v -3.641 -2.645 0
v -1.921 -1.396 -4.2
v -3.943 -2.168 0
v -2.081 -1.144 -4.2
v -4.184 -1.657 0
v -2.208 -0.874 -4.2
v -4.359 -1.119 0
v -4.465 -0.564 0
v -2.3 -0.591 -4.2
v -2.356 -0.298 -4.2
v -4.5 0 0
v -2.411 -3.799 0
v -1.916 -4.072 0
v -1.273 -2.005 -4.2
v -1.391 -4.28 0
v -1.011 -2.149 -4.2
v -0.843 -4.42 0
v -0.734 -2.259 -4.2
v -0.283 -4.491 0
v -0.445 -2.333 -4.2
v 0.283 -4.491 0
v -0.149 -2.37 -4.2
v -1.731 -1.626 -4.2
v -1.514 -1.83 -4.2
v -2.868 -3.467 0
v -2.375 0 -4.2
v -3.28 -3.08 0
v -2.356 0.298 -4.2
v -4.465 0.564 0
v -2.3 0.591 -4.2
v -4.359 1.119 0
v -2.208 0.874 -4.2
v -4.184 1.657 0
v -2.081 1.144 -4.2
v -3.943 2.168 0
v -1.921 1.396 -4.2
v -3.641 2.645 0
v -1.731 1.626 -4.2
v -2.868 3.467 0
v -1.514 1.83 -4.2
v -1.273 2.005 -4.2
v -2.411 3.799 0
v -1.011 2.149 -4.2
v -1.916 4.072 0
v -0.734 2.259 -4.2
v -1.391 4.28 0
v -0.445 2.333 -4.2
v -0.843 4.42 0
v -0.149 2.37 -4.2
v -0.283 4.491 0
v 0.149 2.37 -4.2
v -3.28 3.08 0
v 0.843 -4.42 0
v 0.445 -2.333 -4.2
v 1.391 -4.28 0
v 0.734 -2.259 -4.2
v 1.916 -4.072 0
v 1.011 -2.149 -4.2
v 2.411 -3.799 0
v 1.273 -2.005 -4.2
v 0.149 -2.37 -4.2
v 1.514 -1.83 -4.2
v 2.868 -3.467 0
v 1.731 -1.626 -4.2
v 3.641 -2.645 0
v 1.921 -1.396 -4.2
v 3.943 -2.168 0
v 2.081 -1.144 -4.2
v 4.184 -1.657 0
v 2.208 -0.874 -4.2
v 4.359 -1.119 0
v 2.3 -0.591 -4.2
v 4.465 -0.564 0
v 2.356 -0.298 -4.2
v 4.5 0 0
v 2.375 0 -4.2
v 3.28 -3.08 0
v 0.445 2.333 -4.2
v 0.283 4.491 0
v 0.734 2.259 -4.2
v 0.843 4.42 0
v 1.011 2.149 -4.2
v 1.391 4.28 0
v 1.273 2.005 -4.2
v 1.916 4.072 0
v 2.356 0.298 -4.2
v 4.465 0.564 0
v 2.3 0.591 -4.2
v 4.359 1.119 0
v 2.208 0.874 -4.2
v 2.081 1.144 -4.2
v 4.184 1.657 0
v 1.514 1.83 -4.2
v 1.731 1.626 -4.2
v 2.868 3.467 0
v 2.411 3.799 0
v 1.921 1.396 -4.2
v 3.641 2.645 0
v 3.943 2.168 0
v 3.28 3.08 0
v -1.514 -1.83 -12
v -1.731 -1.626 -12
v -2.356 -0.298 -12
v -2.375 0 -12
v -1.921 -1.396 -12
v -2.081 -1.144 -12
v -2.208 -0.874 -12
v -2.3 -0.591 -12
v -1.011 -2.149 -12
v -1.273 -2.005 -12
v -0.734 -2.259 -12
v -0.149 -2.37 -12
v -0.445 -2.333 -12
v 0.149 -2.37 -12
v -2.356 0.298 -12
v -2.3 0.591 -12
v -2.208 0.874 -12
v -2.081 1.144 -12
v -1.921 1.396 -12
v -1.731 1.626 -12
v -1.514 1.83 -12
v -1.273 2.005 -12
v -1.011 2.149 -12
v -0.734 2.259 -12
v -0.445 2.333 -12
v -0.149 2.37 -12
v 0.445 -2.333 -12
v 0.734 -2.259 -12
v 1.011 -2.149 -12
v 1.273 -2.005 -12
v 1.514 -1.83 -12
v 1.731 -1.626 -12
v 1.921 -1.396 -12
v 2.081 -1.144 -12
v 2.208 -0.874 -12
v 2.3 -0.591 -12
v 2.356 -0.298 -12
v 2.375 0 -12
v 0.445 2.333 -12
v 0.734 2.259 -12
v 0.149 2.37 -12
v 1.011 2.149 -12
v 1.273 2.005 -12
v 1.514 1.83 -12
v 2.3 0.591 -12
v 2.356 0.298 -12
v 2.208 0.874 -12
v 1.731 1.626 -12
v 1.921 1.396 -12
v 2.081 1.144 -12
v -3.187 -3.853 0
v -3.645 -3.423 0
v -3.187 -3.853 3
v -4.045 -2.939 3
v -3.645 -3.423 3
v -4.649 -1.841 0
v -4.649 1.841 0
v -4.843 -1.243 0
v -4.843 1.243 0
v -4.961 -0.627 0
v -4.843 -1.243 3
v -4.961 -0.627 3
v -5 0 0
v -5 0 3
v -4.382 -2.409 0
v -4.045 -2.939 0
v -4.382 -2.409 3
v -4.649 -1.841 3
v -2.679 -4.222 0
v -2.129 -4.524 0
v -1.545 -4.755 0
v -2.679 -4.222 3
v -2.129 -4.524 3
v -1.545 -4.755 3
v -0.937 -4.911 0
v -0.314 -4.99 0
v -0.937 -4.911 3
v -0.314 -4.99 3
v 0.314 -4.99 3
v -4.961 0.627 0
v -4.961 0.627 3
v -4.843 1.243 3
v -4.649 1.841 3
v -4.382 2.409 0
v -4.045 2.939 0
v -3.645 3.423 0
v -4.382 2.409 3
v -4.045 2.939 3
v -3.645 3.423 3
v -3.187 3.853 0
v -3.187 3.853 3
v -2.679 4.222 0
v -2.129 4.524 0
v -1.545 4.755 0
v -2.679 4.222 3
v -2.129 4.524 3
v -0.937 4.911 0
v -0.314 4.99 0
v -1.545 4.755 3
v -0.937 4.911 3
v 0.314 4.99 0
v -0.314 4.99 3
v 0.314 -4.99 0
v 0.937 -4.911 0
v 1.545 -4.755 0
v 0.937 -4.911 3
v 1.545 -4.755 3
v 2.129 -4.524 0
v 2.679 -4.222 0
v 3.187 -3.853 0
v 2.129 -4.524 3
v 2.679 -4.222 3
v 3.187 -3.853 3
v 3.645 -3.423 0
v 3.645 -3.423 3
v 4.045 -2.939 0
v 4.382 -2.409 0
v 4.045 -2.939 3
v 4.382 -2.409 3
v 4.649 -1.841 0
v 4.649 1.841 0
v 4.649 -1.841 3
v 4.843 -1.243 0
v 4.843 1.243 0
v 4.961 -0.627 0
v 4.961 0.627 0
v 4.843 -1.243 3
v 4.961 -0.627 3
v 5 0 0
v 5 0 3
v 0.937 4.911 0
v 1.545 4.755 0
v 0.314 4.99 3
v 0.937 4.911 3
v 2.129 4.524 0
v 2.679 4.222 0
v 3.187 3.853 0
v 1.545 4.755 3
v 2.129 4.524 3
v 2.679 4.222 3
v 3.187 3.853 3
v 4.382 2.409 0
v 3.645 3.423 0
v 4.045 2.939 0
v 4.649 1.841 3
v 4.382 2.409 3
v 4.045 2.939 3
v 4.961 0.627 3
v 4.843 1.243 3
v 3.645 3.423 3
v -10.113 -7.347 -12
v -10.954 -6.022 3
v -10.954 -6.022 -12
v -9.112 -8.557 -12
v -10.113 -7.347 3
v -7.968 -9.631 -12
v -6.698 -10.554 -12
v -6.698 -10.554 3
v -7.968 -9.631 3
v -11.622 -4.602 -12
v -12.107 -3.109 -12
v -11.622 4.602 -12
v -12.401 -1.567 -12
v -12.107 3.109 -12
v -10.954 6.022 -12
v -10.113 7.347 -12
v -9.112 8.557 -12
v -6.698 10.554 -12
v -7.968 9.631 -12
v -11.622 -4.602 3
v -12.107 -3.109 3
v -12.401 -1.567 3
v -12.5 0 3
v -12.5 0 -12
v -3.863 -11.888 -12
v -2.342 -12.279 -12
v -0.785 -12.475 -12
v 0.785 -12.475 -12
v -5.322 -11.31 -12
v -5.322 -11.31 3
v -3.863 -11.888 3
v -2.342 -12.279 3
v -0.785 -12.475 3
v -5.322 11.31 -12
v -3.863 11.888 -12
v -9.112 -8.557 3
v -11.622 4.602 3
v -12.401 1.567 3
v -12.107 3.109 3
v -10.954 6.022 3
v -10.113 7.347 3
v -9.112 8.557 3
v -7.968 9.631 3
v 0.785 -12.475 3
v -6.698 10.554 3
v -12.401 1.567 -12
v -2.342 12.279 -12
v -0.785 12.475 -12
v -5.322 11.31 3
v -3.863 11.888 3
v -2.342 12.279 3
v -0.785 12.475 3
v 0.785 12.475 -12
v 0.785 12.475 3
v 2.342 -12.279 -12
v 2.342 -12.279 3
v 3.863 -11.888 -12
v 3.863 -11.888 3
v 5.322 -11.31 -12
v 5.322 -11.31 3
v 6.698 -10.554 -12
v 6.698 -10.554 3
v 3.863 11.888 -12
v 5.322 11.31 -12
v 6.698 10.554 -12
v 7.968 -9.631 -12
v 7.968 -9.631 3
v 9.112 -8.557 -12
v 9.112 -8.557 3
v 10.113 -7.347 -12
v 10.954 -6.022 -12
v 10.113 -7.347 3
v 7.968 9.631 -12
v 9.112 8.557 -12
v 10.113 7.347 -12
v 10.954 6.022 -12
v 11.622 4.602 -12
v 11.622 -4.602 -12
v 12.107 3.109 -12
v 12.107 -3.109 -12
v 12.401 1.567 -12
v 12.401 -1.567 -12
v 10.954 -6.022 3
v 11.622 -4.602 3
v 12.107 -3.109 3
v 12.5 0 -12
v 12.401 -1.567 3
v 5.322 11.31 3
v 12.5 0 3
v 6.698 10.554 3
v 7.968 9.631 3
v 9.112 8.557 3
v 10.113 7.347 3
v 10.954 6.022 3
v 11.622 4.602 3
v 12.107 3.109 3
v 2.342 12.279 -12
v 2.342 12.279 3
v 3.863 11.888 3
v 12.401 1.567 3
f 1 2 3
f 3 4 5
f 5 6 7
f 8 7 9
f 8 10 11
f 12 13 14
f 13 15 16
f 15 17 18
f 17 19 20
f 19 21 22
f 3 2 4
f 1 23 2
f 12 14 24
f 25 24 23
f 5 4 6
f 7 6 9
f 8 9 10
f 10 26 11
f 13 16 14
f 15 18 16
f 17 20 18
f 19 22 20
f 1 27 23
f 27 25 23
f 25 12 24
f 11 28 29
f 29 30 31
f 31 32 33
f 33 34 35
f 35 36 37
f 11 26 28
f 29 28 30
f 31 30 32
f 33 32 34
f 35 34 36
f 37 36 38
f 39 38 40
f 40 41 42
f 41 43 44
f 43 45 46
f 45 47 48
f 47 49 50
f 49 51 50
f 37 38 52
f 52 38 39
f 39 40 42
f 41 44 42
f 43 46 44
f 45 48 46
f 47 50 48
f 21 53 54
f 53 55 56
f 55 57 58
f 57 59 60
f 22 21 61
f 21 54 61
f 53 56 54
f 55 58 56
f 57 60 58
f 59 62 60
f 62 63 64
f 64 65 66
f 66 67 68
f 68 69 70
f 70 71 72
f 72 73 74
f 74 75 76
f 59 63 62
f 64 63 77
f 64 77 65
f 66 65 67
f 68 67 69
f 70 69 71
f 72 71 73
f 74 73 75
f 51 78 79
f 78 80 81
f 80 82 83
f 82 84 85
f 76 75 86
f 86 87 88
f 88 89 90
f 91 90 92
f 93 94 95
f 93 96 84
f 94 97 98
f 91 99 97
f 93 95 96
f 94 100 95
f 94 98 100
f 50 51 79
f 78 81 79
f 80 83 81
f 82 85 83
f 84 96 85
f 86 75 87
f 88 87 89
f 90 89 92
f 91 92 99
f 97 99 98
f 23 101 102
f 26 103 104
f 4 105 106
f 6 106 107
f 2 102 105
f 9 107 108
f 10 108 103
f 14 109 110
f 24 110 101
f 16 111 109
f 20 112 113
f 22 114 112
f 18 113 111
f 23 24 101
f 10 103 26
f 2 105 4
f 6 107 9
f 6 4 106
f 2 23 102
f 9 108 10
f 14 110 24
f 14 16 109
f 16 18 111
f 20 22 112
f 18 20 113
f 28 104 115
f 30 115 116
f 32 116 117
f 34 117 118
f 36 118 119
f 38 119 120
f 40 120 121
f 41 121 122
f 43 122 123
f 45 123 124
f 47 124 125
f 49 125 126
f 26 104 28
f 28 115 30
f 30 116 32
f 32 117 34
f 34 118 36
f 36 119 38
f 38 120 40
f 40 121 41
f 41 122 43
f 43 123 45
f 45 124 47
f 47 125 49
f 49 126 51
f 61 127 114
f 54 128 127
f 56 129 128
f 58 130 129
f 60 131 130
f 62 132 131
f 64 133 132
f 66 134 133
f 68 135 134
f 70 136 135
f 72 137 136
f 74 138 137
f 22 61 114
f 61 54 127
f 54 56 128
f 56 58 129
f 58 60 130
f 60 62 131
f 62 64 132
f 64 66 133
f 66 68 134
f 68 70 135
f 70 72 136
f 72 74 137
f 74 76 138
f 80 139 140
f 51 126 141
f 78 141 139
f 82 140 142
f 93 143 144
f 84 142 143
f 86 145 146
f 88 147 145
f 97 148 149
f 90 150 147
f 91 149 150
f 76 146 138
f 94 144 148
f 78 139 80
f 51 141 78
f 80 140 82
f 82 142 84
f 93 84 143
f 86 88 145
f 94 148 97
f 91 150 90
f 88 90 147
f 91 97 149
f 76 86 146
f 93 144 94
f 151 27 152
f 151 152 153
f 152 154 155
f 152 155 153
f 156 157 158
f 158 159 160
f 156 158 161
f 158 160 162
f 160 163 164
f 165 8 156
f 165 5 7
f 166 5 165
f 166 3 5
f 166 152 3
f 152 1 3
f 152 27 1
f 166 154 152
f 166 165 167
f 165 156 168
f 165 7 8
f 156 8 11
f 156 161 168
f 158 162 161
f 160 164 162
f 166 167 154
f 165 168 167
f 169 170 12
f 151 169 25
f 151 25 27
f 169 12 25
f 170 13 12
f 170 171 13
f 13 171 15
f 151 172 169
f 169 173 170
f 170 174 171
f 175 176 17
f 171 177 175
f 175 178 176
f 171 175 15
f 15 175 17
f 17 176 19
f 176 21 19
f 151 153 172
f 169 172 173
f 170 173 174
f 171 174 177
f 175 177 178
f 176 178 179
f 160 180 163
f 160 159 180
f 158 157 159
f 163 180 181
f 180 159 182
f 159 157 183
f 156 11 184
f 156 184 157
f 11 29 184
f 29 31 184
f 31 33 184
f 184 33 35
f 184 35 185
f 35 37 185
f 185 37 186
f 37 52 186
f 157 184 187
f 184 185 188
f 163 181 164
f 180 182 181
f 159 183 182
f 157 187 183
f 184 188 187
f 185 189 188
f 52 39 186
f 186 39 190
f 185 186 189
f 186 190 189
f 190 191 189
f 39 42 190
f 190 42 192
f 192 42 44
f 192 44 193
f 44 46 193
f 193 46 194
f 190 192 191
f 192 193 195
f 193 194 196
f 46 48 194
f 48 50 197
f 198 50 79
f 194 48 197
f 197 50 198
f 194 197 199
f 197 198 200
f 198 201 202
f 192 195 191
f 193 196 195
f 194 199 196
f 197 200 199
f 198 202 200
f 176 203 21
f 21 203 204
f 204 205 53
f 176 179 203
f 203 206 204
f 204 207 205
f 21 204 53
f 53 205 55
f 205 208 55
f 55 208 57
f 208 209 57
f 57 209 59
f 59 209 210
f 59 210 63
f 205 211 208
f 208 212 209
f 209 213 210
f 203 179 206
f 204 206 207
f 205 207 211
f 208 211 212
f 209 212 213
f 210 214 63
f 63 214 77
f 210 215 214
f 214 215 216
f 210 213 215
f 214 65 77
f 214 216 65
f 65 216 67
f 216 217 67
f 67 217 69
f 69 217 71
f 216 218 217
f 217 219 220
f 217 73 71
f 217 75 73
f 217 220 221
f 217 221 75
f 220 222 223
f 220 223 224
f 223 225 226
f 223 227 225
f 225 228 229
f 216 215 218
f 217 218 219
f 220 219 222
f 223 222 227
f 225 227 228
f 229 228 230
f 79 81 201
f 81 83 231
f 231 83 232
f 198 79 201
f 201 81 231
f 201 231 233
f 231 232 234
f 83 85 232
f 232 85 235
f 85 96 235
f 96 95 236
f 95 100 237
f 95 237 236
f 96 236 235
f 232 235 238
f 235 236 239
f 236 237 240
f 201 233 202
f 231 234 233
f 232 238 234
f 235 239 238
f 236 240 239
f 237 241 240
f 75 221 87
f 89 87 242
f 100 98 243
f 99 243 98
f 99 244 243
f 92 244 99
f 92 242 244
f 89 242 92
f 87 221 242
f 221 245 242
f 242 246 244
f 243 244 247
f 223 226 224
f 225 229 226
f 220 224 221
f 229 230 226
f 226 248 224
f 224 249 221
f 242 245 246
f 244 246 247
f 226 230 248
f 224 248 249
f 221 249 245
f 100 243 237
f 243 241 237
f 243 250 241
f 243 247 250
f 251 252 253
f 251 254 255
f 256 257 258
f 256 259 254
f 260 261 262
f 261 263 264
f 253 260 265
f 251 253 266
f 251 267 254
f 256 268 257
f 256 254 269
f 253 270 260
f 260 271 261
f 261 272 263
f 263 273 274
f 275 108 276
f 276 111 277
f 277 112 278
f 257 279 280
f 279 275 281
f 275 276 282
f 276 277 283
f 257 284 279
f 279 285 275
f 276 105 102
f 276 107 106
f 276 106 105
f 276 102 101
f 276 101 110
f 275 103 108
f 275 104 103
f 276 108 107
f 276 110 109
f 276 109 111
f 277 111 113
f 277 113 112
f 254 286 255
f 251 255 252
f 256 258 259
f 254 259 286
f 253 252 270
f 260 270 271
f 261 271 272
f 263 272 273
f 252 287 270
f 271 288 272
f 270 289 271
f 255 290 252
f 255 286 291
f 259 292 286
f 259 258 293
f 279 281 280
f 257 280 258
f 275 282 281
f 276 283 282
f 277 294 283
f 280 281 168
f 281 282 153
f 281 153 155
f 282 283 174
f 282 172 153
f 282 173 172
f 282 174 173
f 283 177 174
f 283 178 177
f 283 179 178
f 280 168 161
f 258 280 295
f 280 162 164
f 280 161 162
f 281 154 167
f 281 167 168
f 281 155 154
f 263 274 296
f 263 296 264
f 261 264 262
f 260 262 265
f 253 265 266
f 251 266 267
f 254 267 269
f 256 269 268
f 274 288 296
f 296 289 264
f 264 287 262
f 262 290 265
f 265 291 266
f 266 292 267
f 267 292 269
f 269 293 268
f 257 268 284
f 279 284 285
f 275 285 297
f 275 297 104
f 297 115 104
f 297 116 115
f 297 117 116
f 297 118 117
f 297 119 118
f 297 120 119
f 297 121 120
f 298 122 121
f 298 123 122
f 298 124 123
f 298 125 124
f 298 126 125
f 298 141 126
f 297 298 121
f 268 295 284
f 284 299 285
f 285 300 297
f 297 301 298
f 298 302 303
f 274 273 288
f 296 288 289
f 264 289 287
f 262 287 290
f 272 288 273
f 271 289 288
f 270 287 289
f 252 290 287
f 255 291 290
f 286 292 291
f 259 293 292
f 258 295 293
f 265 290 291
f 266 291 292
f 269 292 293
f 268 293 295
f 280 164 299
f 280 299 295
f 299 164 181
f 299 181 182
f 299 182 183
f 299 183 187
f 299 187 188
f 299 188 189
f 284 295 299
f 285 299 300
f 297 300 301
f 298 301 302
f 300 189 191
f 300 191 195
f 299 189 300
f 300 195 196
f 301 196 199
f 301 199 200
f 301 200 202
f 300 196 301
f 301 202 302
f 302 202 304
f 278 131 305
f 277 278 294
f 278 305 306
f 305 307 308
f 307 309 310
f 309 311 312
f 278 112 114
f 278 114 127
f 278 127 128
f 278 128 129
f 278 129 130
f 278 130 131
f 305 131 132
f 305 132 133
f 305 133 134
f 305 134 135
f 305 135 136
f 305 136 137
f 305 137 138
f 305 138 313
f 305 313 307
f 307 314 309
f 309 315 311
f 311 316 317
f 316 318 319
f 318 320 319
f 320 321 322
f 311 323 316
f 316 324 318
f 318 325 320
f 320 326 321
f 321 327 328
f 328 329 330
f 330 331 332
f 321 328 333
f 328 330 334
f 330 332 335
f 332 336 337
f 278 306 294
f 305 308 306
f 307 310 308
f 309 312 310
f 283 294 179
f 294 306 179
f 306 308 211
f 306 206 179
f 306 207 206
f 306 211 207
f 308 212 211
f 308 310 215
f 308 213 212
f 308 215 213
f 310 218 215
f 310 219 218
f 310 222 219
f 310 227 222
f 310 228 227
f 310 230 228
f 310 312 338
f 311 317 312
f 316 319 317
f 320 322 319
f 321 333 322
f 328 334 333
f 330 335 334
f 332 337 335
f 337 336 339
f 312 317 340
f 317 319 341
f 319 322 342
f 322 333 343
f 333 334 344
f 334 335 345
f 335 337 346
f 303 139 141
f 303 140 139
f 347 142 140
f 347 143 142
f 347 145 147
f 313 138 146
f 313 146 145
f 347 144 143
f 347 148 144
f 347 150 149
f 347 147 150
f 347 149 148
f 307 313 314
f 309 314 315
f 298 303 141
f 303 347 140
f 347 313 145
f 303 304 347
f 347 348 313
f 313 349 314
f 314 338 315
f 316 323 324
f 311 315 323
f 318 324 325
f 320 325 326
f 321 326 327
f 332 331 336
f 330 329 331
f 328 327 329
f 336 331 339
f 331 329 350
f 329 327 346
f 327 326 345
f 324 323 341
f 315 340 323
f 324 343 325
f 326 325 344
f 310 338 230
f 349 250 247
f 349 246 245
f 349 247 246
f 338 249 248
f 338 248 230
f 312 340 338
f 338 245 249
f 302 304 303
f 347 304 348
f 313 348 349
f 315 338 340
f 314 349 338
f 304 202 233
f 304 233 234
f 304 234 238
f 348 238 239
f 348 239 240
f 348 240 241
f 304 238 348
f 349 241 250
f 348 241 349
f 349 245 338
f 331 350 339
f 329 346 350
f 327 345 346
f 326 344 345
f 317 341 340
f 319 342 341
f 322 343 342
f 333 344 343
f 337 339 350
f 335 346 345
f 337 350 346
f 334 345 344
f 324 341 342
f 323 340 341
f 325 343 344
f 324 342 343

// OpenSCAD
$fn = 50;

difference() {
	union() {
		translate(v = [0, 0, -12.0]) {
			cylinder(h = 15, r = 12.5);
		}
	}
	union() {
		translate(v = [0, 0, 0]) {
			rotate(a = [0, 0, 0]) {
				difference() {
					union() {
						translate(v = [0, 0, -15.0]) {
							cylinder(h = 15, r = 2.25);
						}
						translate(v = [0, 0, -4.2]) {
							cylinder(h = 4.2, r1 = 2.375, r2 = 4.5);
						}
						translate(v = [0, 0, -15.0]) {
							cylinder(h = 15, r = 2.375);
						}
						translate(v = [0, 0, -15.0]) {
							cylinder(h = 15, r = 2.25);
						}
					}
					union();
				}
			}
		}
		#cylinder(h = 3, r = 5.0);
	}
}
